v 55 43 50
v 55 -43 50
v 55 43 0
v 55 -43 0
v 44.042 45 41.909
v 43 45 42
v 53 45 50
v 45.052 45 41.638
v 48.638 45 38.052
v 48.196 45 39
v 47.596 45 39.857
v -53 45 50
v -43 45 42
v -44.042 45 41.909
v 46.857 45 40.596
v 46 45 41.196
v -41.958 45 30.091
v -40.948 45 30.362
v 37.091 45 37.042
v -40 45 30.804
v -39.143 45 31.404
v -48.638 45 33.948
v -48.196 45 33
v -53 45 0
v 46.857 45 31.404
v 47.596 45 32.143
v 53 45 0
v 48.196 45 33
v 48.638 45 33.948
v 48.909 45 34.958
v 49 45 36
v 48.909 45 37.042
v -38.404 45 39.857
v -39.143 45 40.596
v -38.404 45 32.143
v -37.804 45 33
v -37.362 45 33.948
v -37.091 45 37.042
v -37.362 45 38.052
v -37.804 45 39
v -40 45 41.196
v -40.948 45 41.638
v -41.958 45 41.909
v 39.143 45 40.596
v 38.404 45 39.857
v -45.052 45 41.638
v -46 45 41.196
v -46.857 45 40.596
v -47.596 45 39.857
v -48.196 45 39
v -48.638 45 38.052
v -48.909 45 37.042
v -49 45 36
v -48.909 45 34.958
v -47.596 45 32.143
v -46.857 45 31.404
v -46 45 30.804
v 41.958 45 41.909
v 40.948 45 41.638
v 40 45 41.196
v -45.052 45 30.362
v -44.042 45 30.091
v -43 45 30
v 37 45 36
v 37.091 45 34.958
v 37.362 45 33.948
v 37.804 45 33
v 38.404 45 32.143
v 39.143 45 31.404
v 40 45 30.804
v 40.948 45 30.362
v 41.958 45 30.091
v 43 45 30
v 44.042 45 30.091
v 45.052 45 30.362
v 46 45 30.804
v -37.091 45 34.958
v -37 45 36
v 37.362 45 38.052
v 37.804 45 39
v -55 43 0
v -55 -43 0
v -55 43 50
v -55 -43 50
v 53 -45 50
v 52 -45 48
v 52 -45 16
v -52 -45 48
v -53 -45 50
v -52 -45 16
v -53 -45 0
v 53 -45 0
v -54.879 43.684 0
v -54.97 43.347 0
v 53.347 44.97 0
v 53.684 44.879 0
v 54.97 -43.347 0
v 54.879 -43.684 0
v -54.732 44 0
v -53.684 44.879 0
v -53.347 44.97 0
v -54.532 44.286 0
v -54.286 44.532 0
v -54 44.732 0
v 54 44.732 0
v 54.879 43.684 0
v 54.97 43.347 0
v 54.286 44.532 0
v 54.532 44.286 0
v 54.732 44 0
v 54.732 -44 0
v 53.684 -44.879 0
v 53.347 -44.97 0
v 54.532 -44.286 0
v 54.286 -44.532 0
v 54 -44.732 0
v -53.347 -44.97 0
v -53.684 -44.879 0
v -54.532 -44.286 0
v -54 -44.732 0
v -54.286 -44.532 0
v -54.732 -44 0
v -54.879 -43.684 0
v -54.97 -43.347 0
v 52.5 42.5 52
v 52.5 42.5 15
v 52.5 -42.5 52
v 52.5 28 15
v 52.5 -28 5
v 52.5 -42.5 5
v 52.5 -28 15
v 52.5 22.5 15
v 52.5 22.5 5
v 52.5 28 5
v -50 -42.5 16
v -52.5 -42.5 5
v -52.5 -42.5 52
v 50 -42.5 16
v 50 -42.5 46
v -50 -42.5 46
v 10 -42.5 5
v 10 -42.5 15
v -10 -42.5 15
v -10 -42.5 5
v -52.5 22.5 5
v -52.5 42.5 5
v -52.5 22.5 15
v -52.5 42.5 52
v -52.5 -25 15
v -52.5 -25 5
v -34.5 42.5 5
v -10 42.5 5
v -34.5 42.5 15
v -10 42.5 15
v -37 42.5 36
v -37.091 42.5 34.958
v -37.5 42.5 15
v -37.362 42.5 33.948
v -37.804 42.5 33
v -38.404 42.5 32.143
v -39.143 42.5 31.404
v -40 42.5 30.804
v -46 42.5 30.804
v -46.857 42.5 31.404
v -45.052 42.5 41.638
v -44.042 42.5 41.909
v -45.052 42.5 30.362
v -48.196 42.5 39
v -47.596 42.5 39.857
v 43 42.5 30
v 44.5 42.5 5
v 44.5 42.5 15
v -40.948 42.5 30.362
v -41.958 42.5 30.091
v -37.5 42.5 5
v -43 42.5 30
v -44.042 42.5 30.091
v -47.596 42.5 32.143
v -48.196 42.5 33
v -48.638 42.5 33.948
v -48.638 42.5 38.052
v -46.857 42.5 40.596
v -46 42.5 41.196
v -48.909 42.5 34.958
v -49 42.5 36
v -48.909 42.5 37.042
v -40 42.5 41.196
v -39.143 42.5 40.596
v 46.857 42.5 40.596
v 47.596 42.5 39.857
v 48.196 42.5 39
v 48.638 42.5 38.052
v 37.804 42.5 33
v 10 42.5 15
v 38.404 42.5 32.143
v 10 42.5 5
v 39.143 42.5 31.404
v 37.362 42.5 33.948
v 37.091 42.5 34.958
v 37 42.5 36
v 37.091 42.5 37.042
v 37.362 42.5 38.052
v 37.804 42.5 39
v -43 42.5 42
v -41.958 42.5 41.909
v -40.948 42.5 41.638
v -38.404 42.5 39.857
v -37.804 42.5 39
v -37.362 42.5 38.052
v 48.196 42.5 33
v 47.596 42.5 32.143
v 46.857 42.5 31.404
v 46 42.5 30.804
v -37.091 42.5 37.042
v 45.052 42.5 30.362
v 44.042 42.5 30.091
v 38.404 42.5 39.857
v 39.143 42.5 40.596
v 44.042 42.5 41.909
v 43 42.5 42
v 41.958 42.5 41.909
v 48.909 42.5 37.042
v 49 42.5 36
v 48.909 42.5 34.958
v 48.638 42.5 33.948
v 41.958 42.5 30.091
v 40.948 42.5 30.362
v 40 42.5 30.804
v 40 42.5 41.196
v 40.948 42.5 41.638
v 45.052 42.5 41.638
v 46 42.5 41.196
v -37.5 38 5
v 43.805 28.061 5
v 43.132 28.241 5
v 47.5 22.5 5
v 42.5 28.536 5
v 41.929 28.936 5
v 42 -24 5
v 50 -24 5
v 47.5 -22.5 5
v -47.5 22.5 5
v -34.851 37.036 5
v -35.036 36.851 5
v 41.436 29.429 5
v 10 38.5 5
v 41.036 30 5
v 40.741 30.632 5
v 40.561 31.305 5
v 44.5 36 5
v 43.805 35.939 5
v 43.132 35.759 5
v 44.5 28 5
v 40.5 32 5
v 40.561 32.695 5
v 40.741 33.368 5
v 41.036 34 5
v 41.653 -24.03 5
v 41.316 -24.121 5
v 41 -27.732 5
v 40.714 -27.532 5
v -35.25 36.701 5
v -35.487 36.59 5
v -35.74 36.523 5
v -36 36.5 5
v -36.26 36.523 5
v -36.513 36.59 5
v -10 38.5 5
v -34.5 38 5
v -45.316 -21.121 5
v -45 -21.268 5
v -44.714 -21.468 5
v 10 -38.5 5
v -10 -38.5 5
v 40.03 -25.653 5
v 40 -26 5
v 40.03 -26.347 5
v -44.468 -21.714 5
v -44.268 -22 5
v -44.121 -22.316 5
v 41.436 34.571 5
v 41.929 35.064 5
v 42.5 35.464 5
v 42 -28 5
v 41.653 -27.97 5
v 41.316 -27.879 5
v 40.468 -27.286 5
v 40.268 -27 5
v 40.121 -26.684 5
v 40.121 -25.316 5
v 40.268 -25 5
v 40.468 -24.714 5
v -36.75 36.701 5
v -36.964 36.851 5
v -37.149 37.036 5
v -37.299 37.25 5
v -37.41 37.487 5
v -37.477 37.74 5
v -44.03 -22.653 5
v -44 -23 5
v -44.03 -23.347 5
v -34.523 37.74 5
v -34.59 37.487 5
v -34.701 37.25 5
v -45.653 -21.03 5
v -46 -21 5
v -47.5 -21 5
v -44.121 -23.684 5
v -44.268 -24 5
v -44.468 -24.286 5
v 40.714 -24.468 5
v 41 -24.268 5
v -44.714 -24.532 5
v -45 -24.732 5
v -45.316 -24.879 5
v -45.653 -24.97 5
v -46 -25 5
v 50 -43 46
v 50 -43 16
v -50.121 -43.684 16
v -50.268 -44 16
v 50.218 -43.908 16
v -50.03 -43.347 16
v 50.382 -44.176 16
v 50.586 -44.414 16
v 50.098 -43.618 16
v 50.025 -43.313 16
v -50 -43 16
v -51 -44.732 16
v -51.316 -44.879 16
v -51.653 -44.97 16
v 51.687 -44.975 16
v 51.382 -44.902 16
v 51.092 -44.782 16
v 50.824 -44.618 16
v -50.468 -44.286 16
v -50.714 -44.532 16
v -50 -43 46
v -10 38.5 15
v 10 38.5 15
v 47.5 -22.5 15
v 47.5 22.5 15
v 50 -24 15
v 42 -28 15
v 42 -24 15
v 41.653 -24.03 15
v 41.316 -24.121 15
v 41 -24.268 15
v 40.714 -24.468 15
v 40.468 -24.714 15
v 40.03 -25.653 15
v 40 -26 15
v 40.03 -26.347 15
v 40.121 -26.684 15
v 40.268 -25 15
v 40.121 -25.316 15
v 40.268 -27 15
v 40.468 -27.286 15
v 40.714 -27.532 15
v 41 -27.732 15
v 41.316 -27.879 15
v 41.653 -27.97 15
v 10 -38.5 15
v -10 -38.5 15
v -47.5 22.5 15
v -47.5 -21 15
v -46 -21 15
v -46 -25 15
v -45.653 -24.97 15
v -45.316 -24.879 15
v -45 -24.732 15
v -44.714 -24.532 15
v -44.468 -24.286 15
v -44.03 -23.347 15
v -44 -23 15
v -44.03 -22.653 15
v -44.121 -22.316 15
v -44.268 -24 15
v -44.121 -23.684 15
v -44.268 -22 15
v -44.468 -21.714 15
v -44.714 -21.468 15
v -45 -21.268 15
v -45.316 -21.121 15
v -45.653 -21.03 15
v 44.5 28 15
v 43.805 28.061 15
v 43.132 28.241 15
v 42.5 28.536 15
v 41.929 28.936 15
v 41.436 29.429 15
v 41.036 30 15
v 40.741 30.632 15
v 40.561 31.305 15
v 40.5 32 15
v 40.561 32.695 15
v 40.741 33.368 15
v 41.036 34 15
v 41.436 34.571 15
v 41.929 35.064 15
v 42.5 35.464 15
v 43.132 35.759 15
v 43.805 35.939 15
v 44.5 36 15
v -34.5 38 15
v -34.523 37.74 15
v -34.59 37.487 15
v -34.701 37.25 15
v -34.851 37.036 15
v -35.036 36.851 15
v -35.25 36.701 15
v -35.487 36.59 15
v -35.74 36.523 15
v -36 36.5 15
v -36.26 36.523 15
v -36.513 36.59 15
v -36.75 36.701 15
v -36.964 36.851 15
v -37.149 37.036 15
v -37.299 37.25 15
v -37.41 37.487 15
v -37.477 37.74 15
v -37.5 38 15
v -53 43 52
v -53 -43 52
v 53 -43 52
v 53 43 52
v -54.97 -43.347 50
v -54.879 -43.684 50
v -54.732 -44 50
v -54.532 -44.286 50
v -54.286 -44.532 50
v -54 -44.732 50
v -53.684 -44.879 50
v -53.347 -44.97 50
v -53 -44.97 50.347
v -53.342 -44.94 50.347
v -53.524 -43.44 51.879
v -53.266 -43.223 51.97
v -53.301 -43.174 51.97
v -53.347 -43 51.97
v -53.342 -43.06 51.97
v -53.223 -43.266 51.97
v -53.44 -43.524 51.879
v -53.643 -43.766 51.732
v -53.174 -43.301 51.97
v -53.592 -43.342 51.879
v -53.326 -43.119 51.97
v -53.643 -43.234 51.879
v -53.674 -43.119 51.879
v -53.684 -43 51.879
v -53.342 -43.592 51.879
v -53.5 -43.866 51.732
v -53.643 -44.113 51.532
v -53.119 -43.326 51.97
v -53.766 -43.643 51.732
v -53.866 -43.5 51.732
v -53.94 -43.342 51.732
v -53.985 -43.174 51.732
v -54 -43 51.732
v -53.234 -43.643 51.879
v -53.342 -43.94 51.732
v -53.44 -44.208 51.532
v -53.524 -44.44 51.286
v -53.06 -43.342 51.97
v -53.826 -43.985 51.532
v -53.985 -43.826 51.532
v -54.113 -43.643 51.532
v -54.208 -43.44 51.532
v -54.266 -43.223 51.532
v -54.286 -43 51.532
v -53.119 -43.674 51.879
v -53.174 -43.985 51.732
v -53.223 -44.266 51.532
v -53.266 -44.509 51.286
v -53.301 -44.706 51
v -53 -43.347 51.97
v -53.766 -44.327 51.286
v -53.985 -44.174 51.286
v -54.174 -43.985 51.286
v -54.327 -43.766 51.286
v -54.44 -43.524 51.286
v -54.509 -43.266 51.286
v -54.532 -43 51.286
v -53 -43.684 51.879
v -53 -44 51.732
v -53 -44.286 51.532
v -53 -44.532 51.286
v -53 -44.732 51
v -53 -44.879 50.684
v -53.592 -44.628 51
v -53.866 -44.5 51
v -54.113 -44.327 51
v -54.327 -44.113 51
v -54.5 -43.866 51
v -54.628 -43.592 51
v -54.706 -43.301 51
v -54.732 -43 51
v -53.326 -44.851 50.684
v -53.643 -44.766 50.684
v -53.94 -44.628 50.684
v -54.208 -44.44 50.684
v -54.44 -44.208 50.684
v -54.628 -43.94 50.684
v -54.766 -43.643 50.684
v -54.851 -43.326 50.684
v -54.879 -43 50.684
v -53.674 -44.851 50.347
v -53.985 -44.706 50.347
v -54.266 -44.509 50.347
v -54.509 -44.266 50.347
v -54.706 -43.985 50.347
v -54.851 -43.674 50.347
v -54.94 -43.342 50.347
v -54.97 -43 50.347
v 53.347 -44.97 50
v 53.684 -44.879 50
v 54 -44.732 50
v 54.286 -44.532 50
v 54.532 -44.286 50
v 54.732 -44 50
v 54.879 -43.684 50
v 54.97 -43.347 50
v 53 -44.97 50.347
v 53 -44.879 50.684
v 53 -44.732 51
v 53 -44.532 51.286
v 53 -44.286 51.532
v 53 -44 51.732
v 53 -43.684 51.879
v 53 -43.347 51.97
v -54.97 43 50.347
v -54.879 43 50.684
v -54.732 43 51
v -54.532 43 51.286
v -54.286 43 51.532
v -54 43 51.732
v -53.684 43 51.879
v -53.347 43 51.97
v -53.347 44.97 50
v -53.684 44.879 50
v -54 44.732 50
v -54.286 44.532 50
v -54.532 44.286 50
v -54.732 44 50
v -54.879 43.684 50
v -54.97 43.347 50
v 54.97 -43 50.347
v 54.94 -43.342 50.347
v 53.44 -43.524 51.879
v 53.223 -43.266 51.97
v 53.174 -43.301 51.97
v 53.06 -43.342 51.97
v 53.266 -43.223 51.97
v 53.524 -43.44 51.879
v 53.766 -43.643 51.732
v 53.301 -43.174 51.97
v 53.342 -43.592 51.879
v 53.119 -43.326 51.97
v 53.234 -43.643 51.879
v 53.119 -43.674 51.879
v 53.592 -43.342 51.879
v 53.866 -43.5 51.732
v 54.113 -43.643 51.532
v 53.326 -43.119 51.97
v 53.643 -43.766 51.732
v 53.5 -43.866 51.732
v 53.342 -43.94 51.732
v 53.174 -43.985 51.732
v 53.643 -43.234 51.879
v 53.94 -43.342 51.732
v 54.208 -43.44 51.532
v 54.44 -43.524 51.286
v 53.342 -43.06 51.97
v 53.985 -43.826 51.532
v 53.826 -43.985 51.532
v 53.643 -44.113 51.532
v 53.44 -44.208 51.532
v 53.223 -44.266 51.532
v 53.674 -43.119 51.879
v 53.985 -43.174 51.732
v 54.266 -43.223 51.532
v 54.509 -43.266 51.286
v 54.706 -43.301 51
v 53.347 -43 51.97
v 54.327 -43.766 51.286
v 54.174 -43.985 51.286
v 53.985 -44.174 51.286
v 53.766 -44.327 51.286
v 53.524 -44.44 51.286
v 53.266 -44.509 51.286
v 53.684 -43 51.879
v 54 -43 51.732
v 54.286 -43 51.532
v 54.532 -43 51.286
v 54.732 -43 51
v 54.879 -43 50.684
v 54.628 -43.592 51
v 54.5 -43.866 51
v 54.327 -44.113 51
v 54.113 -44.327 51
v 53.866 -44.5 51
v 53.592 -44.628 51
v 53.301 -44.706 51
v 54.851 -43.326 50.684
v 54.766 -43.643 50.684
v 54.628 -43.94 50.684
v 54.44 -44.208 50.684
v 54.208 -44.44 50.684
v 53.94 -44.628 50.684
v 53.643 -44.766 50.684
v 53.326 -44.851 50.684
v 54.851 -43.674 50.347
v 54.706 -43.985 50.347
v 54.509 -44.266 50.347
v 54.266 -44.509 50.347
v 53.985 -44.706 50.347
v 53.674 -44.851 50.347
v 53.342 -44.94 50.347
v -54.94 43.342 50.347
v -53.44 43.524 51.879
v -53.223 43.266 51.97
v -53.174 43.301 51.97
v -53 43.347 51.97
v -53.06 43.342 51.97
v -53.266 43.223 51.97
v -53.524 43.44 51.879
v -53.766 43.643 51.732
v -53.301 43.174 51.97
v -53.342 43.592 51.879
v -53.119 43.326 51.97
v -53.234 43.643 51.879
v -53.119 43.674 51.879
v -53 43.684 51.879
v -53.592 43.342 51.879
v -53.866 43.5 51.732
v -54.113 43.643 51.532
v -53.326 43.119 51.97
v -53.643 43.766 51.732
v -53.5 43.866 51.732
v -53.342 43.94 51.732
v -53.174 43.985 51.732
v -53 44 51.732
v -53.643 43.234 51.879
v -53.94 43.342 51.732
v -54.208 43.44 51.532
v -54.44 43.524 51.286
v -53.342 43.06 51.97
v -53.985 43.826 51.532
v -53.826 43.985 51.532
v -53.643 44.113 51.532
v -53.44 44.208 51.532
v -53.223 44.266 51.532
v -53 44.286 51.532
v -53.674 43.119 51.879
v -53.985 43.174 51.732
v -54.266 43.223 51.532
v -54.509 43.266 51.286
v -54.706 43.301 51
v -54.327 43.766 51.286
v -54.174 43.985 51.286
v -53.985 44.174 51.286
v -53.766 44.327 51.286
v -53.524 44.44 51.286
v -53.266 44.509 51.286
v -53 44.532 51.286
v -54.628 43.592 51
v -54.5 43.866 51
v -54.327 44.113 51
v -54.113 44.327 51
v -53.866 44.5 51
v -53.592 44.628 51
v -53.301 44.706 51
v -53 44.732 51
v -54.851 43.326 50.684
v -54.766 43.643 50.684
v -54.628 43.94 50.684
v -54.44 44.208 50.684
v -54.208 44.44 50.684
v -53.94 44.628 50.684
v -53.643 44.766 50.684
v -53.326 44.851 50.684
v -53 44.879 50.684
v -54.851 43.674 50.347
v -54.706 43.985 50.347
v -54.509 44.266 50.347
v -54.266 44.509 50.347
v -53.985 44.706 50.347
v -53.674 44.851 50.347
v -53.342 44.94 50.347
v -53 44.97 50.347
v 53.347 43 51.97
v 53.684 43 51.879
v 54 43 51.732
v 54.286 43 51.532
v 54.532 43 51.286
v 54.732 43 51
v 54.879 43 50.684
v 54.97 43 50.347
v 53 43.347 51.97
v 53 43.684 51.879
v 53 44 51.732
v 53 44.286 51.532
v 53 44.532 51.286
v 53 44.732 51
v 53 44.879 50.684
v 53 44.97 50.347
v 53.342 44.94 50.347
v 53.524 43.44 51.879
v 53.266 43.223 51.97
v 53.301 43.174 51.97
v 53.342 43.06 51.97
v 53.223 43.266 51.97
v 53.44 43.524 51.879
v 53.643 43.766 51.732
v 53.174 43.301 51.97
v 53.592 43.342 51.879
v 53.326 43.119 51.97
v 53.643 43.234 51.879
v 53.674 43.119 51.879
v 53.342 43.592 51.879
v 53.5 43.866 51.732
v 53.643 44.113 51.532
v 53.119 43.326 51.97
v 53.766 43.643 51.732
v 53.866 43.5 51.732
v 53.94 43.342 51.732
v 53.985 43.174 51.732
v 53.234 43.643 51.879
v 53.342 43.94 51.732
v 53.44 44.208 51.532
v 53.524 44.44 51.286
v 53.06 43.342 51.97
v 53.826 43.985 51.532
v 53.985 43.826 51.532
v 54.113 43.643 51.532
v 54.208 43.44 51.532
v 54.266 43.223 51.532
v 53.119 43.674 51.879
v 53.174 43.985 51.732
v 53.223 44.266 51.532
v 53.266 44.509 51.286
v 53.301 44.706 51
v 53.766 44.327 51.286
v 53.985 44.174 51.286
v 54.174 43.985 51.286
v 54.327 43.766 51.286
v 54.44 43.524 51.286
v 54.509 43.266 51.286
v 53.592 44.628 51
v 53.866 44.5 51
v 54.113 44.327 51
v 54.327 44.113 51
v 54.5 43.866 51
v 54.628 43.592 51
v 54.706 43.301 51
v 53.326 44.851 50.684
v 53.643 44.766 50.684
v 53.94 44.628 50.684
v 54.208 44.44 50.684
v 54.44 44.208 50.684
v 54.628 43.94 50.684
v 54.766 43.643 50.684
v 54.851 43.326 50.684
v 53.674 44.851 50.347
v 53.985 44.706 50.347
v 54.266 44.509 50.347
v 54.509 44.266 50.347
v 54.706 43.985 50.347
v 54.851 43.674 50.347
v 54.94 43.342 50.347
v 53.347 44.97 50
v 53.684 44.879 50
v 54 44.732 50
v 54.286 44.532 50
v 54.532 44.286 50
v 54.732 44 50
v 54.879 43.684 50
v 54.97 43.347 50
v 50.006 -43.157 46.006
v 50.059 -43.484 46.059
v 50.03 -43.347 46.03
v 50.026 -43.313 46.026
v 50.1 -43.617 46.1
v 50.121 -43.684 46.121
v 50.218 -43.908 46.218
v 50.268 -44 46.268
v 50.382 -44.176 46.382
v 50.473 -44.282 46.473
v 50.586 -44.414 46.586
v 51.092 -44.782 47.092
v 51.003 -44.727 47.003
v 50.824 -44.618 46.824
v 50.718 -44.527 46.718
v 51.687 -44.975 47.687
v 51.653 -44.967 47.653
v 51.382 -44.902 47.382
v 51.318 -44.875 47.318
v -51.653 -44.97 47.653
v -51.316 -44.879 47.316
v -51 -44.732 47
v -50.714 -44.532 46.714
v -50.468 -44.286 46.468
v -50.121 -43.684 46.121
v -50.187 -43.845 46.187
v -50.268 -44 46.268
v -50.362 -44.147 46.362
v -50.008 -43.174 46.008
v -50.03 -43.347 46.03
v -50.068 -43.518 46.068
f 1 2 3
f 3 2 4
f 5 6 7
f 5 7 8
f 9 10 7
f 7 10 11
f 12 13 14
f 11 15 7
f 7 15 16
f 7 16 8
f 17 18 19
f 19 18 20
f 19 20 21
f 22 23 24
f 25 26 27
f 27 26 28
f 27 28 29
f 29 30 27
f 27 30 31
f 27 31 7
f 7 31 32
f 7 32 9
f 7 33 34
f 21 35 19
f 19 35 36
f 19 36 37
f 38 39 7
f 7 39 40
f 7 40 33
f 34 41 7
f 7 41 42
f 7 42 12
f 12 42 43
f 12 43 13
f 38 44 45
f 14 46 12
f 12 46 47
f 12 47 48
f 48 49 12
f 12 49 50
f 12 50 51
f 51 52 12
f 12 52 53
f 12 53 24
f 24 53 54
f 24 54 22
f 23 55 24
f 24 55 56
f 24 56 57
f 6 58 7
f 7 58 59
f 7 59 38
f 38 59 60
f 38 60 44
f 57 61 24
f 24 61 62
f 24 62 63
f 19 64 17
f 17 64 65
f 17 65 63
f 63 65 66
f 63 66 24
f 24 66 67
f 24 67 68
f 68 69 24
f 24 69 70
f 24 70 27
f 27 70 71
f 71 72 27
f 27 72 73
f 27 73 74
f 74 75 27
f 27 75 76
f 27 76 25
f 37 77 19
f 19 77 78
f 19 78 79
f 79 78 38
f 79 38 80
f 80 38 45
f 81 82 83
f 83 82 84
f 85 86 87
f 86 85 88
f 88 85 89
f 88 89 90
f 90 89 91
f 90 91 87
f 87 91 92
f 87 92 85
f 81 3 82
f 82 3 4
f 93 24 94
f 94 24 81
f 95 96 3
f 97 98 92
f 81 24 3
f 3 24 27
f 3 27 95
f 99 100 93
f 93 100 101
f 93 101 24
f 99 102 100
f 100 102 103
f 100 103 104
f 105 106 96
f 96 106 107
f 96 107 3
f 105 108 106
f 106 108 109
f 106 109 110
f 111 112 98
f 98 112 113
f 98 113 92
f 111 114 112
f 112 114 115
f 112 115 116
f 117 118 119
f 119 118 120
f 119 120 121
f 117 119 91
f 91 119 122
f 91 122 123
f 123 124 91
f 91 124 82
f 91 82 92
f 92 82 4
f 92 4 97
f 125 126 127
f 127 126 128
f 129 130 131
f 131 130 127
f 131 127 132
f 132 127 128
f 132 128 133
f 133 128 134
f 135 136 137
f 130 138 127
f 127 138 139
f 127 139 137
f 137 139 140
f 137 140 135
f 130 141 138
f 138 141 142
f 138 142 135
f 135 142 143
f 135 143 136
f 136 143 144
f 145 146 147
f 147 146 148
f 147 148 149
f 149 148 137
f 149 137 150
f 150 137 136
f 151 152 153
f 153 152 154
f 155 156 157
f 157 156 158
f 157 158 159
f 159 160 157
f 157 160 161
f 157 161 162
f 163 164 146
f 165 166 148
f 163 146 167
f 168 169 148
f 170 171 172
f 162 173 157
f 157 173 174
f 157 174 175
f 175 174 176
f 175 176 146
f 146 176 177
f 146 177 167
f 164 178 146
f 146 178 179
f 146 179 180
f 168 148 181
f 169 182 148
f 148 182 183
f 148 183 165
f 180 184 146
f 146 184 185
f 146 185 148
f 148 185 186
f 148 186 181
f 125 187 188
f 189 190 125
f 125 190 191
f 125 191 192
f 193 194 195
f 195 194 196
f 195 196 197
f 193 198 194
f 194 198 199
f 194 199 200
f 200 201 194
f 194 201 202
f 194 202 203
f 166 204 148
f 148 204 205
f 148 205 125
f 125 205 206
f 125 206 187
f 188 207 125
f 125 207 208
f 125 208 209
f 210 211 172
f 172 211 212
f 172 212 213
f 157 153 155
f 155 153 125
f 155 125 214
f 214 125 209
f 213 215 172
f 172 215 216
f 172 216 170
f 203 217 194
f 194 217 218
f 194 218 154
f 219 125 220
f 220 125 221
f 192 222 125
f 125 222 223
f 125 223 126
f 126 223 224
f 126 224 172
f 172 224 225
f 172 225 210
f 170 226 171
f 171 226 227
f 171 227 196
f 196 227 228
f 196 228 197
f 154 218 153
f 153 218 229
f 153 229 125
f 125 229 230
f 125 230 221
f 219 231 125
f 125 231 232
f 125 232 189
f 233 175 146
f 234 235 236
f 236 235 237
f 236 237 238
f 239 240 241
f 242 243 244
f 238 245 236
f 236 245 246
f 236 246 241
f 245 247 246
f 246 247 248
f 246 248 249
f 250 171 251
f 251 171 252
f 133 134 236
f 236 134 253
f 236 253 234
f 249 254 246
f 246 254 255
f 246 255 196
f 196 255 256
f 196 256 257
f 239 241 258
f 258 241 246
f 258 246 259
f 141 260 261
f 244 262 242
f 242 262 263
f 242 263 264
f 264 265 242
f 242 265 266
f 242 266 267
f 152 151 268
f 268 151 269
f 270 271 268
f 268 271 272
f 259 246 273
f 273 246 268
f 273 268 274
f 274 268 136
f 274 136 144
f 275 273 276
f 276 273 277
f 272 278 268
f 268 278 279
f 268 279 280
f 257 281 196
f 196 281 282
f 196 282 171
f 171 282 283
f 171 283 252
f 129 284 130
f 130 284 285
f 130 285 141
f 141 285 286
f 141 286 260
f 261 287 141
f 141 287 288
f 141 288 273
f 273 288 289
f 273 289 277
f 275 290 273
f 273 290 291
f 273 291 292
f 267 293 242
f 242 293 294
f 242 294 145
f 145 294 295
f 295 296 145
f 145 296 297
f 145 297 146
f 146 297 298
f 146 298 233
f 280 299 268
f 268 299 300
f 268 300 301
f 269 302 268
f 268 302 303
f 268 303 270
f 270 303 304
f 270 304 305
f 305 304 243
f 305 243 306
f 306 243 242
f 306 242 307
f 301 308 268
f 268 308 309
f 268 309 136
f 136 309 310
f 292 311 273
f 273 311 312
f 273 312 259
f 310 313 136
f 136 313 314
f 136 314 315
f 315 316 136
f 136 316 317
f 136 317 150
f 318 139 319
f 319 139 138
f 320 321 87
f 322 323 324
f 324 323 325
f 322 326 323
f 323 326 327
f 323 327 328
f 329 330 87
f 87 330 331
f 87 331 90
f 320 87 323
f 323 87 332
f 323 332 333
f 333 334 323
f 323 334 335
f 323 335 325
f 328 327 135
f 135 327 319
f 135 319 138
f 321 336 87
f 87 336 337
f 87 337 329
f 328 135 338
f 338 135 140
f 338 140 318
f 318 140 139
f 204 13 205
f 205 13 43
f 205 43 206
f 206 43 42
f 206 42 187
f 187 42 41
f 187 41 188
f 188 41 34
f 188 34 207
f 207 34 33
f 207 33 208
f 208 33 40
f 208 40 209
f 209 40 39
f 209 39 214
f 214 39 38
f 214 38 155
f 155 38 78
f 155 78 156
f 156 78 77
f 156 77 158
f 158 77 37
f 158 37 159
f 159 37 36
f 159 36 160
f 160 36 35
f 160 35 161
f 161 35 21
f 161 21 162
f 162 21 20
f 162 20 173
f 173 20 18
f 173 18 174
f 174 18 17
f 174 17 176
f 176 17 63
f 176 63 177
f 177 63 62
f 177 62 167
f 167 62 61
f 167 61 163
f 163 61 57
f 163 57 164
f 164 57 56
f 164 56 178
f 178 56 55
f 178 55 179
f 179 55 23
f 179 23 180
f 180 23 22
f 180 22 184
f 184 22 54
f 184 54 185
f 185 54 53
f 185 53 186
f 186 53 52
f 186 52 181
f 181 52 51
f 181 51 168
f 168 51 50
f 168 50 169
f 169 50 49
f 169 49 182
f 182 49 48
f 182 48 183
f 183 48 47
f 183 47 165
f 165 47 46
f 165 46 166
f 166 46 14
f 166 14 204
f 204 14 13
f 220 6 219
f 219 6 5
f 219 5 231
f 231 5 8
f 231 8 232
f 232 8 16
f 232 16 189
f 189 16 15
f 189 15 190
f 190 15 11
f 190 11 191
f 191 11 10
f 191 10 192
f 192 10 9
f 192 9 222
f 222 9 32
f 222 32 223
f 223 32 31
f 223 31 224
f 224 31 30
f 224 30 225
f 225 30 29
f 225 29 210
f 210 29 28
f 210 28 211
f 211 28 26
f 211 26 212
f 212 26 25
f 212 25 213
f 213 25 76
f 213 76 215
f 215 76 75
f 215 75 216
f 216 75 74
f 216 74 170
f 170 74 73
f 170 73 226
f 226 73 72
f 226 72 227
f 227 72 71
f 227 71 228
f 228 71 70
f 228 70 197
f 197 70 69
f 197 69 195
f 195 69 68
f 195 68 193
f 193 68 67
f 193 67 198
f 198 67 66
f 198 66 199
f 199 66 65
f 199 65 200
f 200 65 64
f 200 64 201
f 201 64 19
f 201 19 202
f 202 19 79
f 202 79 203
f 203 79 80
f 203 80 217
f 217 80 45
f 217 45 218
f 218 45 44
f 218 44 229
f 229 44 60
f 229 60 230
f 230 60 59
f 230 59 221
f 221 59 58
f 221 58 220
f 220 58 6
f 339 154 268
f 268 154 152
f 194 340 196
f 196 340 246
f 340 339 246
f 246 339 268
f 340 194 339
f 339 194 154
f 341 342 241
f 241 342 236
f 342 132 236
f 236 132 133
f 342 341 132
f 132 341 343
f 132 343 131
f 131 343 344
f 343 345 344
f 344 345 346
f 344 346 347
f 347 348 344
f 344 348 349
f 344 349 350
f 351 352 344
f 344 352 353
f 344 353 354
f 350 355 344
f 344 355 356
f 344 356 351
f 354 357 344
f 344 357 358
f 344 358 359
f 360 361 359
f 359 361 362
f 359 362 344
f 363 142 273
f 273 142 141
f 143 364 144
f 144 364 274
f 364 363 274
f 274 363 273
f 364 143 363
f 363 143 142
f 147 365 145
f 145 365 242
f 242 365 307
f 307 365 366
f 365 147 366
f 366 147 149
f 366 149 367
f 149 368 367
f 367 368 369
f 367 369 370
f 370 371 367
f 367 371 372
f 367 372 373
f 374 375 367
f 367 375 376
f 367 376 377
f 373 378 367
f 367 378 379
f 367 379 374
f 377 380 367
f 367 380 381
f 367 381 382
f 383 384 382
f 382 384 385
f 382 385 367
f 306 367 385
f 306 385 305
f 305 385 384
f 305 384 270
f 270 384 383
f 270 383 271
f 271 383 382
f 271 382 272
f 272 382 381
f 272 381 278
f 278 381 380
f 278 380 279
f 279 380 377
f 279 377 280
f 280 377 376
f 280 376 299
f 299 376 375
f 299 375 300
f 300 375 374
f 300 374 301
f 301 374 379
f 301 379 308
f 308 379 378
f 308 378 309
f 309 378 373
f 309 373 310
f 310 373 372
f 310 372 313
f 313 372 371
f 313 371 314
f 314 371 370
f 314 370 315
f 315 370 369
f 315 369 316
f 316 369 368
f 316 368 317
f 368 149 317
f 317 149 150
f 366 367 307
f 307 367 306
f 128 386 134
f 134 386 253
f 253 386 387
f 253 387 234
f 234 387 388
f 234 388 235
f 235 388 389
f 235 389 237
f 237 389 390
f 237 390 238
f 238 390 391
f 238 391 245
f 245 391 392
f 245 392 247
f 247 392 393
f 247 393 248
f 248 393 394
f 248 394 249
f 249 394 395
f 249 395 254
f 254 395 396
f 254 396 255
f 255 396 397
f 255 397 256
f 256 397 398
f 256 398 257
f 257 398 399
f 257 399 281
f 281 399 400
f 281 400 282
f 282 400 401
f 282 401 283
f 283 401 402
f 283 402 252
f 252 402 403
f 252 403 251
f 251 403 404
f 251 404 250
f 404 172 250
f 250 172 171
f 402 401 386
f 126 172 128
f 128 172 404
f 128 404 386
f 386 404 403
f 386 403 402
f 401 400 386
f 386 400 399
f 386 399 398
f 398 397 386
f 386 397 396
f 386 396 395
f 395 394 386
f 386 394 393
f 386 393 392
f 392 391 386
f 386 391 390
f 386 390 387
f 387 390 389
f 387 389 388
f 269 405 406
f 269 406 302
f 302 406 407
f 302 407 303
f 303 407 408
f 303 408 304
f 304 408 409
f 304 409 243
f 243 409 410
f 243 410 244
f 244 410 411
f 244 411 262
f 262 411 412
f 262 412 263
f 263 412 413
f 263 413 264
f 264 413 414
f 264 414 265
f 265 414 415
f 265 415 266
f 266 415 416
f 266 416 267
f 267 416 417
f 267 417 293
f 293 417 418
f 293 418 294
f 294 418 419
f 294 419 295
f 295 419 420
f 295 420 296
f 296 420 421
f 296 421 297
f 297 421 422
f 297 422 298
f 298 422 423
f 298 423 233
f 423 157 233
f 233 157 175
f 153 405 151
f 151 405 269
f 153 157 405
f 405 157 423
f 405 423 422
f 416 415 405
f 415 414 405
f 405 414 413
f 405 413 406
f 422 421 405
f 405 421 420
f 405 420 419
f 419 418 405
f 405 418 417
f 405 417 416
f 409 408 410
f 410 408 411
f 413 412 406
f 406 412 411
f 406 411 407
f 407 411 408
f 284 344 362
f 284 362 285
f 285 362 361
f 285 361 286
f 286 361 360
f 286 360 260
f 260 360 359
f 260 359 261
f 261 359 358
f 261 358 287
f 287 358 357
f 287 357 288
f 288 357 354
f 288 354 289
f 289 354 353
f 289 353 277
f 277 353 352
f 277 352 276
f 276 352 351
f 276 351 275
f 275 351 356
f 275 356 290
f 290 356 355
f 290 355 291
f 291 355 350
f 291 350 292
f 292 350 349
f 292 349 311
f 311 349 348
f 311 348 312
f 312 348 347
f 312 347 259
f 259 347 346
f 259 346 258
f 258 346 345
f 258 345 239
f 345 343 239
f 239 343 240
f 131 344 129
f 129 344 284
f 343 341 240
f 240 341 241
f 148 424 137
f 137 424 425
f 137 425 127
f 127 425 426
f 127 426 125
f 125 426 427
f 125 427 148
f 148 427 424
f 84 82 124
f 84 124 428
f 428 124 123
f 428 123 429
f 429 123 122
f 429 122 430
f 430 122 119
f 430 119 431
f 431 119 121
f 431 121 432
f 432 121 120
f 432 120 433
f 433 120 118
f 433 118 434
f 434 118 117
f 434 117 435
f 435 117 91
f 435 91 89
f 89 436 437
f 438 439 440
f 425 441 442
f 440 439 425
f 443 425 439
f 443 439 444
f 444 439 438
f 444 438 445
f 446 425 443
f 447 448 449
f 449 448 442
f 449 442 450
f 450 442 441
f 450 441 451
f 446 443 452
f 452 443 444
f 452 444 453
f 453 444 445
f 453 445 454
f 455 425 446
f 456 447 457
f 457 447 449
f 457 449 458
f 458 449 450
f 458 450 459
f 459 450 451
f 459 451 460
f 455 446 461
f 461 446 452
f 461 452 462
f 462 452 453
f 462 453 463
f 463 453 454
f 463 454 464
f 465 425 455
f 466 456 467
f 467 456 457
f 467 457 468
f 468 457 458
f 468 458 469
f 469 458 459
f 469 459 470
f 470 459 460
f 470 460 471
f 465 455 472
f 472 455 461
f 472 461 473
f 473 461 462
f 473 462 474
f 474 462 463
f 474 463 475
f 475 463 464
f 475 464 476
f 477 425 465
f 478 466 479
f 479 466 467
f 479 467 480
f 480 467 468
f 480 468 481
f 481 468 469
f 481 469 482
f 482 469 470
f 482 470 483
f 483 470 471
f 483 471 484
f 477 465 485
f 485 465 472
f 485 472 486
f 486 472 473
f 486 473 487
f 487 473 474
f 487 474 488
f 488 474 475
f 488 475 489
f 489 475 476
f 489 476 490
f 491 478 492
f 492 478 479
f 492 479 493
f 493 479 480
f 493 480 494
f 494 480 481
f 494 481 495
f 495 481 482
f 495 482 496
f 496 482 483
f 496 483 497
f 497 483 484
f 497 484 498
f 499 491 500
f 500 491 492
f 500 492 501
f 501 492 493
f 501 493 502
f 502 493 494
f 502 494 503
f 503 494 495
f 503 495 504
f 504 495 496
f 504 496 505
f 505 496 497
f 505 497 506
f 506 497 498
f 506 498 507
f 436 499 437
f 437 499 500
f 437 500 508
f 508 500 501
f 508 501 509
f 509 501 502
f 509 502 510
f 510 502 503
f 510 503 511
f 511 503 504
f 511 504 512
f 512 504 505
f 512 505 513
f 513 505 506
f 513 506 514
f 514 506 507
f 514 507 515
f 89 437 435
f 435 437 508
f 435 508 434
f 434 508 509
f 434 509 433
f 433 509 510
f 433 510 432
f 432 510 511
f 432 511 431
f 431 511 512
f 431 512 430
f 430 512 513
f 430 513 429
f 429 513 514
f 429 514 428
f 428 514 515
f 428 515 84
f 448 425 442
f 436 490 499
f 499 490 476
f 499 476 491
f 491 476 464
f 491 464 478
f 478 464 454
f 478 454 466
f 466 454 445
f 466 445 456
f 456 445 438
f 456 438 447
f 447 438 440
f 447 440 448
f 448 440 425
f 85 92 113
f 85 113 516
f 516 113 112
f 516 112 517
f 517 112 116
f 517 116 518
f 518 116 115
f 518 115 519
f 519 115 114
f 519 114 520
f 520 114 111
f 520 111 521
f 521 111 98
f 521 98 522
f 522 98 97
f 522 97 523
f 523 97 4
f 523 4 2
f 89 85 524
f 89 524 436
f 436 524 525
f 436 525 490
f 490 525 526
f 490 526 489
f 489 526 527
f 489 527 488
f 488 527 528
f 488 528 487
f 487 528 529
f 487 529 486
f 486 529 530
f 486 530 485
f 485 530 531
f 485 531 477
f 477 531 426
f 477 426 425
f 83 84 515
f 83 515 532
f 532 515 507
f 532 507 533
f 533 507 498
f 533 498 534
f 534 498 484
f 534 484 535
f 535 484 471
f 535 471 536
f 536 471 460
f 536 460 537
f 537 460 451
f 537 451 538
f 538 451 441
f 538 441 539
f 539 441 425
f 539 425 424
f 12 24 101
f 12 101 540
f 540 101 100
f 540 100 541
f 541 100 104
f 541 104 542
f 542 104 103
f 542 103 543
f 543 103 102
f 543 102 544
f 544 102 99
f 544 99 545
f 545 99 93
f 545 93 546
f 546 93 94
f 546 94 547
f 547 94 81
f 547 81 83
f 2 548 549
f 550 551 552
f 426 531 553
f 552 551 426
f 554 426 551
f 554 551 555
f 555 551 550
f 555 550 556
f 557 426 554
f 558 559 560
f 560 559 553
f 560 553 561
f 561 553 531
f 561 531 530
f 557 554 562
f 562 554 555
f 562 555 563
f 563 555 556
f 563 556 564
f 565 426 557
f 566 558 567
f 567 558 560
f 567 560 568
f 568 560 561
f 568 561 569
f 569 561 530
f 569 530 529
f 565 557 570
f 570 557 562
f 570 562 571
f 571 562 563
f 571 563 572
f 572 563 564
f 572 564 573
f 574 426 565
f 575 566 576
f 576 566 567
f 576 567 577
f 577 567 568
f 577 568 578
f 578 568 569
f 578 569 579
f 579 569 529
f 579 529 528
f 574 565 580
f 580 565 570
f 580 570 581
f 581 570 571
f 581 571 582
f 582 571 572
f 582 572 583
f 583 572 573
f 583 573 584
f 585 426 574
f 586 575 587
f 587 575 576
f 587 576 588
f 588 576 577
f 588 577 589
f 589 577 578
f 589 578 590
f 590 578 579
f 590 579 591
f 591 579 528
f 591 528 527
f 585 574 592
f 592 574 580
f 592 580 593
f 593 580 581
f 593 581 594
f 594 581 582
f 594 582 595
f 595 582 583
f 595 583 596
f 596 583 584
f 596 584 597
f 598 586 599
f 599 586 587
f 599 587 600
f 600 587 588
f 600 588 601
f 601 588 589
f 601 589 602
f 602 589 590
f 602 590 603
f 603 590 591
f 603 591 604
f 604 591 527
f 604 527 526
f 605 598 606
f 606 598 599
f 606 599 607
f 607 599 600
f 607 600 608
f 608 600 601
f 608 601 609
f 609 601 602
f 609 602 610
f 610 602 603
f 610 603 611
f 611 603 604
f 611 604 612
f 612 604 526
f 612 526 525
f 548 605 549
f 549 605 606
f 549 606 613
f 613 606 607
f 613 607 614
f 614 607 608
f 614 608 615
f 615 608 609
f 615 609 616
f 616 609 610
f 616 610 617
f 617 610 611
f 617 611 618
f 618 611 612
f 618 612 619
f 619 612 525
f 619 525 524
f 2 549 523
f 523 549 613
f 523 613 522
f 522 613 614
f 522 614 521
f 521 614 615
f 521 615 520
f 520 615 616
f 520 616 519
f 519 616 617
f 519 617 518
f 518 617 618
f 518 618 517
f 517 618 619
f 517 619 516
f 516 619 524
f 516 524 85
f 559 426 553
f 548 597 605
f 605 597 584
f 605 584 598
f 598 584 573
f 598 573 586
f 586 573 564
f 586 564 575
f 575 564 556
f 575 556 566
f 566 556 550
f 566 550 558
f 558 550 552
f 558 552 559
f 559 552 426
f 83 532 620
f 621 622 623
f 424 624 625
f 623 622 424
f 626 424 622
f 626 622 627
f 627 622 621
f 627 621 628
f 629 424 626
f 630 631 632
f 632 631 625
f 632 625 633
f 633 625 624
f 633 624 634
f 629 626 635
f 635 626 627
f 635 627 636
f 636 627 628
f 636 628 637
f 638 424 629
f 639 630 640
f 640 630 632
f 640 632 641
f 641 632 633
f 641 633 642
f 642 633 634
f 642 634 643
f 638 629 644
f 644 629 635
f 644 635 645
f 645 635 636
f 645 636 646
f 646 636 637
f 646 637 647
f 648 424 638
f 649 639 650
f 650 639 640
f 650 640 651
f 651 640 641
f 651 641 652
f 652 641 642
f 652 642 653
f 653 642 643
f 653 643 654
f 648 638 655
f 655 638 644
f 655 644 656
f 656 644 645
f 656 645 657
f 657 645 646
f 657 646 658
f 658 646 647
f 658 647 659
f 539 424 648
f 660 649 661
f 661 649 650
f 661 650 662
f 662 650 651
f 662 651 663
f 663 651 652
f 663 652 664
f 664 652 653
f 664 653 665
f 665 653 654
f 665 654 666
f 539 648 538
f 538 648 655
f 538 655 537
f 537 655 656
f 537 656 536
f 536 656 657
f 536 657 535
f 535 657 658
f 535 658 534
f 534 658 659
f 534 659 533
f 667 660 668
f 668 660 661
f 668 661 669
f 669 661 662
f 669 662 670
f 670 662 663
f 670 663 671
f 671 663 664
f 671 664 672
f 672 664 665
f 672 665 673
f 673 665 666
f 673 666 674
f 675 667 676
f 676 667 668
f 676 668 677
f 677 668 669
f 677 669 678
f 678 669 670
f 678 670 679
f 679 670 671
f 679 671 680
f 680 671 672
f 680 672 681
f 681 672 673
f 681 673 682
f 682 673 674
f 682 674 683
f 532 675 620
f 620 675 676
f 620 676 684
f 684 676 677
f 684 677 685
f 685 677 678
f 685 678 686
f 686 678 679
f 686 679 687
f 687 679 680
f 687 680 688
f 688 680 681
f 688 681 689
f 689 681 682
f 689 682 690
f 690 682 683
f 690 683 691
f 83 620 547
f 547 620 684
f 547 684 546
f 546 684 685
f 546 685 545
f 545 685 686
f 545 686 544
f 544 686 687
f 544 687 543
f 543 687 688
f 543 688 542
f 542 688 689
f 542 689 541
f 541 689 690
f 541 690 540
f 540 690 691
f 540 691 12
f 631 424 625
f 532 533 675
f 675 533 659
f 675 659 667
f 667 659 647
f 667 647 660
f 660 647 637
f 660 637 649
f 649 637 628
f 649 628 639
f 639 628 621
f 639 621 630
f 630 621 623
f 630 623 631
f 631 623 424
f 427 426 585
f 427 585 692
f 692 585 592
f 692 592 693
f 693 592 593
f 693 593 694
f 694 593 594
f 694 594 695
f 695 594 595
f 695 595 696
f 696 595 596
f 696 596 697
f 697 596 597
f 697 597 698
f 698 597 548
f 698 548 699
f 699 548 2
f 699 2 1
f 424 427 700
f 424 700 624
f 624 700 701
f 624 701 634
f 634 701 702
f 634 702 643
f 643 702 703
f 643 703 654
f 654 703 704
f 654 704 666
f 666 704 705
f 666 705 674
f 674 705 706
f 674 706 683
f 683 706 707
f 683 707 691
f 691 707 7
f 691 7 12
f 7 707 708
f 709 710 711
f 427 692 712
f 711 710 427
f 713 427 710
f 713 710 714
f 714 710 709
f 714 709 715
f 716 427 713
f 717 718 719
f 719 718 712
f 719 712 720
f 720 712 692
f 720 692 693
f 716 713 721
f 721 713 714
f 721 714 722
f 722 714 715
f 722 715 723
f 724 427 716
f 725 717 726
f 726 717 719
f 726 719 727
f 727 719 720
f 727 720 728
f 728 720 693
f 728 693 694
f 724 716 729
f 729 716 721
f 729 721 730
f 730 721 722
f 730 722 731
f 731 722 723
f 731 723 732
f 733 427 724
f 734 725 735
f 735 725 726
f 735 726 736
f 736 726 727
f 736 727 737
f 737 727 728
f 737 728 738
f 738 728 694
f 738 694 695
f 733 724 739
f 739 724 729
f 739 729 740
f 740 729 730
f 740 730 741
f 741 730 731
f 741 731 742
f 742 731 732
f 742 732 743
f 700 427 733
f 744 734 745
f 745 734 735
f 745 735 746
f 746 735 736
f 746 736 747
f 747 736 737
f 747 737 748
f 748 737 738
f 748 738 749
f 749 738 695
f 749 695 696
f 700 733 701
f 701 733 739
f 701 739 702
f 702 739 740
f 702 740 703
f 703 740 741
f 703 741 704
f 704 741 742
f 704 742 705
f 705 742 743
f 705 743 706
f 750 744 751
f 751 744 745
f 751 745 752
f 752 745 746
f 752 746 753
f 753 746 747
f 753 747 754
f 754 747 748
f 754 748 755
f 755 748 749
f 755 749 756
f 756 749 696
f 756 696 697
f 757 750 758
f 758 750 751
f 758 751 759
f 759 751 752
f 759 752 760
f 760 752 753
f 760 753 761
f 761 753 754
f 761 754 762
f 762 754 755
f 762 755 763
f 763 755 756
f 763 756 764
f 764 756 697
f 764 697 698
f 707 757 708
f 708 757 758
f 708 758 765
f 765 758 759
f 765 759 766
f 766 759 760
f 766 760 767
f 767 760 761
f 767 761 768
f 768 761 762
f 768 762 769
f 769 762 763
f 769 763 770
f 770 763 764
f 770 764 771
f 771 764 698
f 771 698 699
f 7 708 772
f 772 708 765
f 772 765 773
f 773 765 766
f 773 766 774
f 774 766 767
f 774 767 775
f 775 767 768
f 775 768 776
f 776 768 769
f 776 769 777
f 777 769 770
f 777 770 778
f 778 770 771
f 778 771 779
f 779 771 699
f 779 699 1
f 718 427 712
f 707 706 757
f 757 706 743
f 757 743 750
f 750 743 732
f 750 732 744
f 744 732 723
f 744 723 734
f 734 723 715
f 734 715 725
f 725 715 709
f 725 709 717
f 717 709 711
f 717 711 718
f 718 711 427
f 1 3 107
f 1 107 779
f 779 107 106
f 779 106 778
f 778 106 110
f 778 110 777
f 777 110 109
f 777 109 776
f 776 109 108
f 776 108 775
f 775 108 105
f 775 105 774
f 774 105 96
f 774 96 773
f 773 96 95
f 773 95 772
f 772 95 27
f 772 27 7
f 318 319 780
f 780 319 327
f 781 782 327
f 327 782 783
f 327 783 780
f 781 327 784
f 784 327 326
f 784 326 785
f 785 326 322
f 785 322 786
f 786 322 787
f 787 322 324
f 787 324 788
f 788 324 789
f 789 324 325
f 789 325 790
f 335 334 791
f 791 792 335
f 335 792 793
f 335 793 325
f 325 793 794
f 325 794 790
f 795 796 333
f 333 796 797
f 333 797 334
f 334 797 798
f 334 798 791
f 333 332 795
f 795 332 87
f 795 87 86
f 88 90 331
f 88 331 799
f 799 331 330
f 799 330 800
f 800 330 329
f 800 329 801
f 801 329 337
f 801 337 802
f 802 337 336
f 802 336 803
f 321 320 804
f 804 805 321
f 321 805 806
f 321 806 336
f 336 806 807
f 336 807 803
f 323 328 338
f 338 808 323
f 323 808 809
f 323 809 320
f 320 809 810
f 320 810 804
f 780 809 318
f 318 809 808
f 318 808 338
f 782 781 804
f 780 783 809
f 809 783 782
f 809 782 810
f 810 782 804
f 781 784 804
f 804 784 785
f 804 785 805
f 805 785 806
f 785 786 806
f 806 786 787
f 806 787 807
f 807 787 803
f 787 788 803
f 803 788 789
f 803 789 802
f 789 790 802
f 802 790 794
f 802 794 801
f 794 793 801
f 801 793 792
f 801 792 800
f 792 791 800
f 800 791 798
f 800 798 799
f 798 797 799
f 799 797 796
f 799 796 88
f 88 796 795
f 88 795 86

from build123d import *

# Parameters (mm, degrees)
SKETCH_1_W           = 110
SKETCH_1_H           = 90
EXTRUDE_1_DEPTH      = 60
SKETCH_2_W           = 105
SKETCH_2_H           = 85
CUT_EXTRUDE_1_DEPTH  = 55
SKETCH_3_W           = 100
SKETCH_3_H           = 30
CUT_EXTRUDE_2_DEPTH  = 12
SKETCH_4_R           = 6
CUT_EXTRUDE_3_DEPTH  = 12
EXTRUDE_2_DEPTH      = 5
EXTRUDE_2_DEPTH_BACK = 10
SKETCH_6_W           = 20
SKETCH_6_H           = 4
SKETCH_6_W_2         = 5
SKETCH_6_H_2         = 45
EXTRUDE_3_DEPTH      = 5
EXTRUDE_3_DEPTH_BACK = 10
SKETCH_10_W          = 110
SKETCH_10_H          = 8
CUT_EXTRUDE_4_DEPTH  = 122.346610995
FILLET_1_R           = 2


with BuildPart() as part:
    # 스케치1 → 보스-돌출1 (new body)
    with BuildSketch(Plane.XY):
        Rectangle(SKETCH_1_W, SKETCH_1_H)
    extrude(amount=EXTRUDE_1_DEPTH)

    # 스케치2 → 컷-돌출1 (cut)
    with BuildSketch(Plane.XY.offset(60)):
        Rectangle(SKETCH_2_W, SKETCH_2_H)
    extrude(amount=-CUT_EXTRUDE_1_DEPTH, mode=Mode.SUBTRACT)

    # 스케치3 → 컷-돌출2 (cut)
    with BuildSketch(Plane.XZ.offset(45)):
        with Locations((0, 31)):
            Rectangle(SKETCH_3_W, SKETCH_3_H)
    extrude(amount=-CUT_EXTRUDE_2_DEPTH, mode=Mode.SUBTRACT)

    # 스케치4 → 컷-돌출3 (cut)
    with BuildSketch(Plane(origin=(0, 45, 0), x_dir=(1, 0, 0), z_dir=(0, 1, 0))):
        with Locations(Location((-43, -36, 0), (0, 0, 270))):
            Circle(SKETCH_4_R)
        with Locations(Location((43, -36, 0), (0, 0, 270))):
            Circle(SKETCH_4_R)
    extrude(amount=-CUT_EXTRUDE_3_DEPTH, mode=Mode.SUBTRACT)

    # 스케치6 → 보스-돌출2 (add, two sides: drawn at the far end of the back side and taken through both)
    with BuildSketch(Plane.XY.offset(10).offset(-EXTRUDE_2_DEPTH_BACK)):
        with Locations((0, 40.5)):
            Rectangle(SKETCH_6_W, SKETCH_6_H)
        with Locations((50, 0)):
            Rectangle(SKETCH_6_W_2, SKETCH_6_H_2)
        with Locations((0, -40.5)):
            Rectangle(SKETCH_6_W, SKETCH_6_H)
        with Locations((-50, 0)):
            Rectangle(SKETCH_6_W_2, SKETCH_6_H_2)
    extrude(amount=EXTRUDE_2_DEPTH + EXTRUDE_2_DEPTH_BACK)

    # 스케치7 → 보스-돌출3 (add, two sides: drawn at the far end of the back side and taken through both)
    with BuildSketch(Plane.XY.offset(10).offset(-EXTRUDE_3_DEPTH_BACK)):
        with BuildLine():
            Line((-46, -21), (-50, -21))
            Line((-50, -21), (-47.5, -22.5))
            Line((-47.5, -22.5), (-52.5, -22.5))
            Line((-52.5, -22.5), (-52.5, -25))
            Line((-52.5, -25), (-46, -25))
            ThreePointArc((-46, -25), (-44, -23), (-46, -21))
        make_face()
        with BuildLine():
            Line((-34.5, 38), (-34.5, 42.5))
            Line((-34.5, 42.5), (-37.5, 42.5))
            Line((-37.5, 42.5), (-37.5, 38))
            ThreePointArc((-37.5, 38), (-36, 36.5), (-34.5, 38))
        make_face()
        with BuildLine():
            Line((42, -24), (50, -24))
            Line((50, -24), (47.5, -22.5))
            Line((47.5, -22.5), (52.5, -22.5))
            Line((52.5, -22.5), (52.5, -28))
            Line((52.5, -28), (42, -28))
            ThreePointArc((42, -28), (40, -26), (42, -24))
        make_face()
        with BuildLine():
            Line((44.5, 36), (44.5, 42.5))
            Line((44.5, 42.5), (52.5, 42.5))
            Line((52.5, 42.5), (52.5, 28))
            Line((52.5, 28), (44.5, 28))
            ThreePointArc((44.5, 28), (40.5, 32), (44.5, 36))
        make_face()
    extrude(amount=EXTRUDE_3_DEPTH + EXTRUDE_3_DEPTH_BACK)

    # 스케치10 → 컷-돌출4 (cut, through all)
    with BuildSketch(Plane.XZ.offset(45)):
        with Locations((0, 56)):
            Rectangle(SKETCH_10_W, SKETCH_10_H)
    extrude(amount=-CUT_EXTRUDE_4_DEPTH, mode=Mode.SUBTRACT)

    # 필렛1
    fillet_1_edges = [part.edges().sort_by_distance(p)[0] for p in [
        (55, -45, 26),
        (-55, -45, 26),
        (-55, 45, 26),
        (55, 45, 26),
        (0, 45, 52),
        (55, 0, 52),
        (-55, 0, 52),
        (0, -45, 52),
        (50, -45, 31),
        (0, -45, 46),
        (-50, -45, 31),
    ]]
    fillet(fillet_1_edges, radius=FILLET_1_R)


solid = part.part
